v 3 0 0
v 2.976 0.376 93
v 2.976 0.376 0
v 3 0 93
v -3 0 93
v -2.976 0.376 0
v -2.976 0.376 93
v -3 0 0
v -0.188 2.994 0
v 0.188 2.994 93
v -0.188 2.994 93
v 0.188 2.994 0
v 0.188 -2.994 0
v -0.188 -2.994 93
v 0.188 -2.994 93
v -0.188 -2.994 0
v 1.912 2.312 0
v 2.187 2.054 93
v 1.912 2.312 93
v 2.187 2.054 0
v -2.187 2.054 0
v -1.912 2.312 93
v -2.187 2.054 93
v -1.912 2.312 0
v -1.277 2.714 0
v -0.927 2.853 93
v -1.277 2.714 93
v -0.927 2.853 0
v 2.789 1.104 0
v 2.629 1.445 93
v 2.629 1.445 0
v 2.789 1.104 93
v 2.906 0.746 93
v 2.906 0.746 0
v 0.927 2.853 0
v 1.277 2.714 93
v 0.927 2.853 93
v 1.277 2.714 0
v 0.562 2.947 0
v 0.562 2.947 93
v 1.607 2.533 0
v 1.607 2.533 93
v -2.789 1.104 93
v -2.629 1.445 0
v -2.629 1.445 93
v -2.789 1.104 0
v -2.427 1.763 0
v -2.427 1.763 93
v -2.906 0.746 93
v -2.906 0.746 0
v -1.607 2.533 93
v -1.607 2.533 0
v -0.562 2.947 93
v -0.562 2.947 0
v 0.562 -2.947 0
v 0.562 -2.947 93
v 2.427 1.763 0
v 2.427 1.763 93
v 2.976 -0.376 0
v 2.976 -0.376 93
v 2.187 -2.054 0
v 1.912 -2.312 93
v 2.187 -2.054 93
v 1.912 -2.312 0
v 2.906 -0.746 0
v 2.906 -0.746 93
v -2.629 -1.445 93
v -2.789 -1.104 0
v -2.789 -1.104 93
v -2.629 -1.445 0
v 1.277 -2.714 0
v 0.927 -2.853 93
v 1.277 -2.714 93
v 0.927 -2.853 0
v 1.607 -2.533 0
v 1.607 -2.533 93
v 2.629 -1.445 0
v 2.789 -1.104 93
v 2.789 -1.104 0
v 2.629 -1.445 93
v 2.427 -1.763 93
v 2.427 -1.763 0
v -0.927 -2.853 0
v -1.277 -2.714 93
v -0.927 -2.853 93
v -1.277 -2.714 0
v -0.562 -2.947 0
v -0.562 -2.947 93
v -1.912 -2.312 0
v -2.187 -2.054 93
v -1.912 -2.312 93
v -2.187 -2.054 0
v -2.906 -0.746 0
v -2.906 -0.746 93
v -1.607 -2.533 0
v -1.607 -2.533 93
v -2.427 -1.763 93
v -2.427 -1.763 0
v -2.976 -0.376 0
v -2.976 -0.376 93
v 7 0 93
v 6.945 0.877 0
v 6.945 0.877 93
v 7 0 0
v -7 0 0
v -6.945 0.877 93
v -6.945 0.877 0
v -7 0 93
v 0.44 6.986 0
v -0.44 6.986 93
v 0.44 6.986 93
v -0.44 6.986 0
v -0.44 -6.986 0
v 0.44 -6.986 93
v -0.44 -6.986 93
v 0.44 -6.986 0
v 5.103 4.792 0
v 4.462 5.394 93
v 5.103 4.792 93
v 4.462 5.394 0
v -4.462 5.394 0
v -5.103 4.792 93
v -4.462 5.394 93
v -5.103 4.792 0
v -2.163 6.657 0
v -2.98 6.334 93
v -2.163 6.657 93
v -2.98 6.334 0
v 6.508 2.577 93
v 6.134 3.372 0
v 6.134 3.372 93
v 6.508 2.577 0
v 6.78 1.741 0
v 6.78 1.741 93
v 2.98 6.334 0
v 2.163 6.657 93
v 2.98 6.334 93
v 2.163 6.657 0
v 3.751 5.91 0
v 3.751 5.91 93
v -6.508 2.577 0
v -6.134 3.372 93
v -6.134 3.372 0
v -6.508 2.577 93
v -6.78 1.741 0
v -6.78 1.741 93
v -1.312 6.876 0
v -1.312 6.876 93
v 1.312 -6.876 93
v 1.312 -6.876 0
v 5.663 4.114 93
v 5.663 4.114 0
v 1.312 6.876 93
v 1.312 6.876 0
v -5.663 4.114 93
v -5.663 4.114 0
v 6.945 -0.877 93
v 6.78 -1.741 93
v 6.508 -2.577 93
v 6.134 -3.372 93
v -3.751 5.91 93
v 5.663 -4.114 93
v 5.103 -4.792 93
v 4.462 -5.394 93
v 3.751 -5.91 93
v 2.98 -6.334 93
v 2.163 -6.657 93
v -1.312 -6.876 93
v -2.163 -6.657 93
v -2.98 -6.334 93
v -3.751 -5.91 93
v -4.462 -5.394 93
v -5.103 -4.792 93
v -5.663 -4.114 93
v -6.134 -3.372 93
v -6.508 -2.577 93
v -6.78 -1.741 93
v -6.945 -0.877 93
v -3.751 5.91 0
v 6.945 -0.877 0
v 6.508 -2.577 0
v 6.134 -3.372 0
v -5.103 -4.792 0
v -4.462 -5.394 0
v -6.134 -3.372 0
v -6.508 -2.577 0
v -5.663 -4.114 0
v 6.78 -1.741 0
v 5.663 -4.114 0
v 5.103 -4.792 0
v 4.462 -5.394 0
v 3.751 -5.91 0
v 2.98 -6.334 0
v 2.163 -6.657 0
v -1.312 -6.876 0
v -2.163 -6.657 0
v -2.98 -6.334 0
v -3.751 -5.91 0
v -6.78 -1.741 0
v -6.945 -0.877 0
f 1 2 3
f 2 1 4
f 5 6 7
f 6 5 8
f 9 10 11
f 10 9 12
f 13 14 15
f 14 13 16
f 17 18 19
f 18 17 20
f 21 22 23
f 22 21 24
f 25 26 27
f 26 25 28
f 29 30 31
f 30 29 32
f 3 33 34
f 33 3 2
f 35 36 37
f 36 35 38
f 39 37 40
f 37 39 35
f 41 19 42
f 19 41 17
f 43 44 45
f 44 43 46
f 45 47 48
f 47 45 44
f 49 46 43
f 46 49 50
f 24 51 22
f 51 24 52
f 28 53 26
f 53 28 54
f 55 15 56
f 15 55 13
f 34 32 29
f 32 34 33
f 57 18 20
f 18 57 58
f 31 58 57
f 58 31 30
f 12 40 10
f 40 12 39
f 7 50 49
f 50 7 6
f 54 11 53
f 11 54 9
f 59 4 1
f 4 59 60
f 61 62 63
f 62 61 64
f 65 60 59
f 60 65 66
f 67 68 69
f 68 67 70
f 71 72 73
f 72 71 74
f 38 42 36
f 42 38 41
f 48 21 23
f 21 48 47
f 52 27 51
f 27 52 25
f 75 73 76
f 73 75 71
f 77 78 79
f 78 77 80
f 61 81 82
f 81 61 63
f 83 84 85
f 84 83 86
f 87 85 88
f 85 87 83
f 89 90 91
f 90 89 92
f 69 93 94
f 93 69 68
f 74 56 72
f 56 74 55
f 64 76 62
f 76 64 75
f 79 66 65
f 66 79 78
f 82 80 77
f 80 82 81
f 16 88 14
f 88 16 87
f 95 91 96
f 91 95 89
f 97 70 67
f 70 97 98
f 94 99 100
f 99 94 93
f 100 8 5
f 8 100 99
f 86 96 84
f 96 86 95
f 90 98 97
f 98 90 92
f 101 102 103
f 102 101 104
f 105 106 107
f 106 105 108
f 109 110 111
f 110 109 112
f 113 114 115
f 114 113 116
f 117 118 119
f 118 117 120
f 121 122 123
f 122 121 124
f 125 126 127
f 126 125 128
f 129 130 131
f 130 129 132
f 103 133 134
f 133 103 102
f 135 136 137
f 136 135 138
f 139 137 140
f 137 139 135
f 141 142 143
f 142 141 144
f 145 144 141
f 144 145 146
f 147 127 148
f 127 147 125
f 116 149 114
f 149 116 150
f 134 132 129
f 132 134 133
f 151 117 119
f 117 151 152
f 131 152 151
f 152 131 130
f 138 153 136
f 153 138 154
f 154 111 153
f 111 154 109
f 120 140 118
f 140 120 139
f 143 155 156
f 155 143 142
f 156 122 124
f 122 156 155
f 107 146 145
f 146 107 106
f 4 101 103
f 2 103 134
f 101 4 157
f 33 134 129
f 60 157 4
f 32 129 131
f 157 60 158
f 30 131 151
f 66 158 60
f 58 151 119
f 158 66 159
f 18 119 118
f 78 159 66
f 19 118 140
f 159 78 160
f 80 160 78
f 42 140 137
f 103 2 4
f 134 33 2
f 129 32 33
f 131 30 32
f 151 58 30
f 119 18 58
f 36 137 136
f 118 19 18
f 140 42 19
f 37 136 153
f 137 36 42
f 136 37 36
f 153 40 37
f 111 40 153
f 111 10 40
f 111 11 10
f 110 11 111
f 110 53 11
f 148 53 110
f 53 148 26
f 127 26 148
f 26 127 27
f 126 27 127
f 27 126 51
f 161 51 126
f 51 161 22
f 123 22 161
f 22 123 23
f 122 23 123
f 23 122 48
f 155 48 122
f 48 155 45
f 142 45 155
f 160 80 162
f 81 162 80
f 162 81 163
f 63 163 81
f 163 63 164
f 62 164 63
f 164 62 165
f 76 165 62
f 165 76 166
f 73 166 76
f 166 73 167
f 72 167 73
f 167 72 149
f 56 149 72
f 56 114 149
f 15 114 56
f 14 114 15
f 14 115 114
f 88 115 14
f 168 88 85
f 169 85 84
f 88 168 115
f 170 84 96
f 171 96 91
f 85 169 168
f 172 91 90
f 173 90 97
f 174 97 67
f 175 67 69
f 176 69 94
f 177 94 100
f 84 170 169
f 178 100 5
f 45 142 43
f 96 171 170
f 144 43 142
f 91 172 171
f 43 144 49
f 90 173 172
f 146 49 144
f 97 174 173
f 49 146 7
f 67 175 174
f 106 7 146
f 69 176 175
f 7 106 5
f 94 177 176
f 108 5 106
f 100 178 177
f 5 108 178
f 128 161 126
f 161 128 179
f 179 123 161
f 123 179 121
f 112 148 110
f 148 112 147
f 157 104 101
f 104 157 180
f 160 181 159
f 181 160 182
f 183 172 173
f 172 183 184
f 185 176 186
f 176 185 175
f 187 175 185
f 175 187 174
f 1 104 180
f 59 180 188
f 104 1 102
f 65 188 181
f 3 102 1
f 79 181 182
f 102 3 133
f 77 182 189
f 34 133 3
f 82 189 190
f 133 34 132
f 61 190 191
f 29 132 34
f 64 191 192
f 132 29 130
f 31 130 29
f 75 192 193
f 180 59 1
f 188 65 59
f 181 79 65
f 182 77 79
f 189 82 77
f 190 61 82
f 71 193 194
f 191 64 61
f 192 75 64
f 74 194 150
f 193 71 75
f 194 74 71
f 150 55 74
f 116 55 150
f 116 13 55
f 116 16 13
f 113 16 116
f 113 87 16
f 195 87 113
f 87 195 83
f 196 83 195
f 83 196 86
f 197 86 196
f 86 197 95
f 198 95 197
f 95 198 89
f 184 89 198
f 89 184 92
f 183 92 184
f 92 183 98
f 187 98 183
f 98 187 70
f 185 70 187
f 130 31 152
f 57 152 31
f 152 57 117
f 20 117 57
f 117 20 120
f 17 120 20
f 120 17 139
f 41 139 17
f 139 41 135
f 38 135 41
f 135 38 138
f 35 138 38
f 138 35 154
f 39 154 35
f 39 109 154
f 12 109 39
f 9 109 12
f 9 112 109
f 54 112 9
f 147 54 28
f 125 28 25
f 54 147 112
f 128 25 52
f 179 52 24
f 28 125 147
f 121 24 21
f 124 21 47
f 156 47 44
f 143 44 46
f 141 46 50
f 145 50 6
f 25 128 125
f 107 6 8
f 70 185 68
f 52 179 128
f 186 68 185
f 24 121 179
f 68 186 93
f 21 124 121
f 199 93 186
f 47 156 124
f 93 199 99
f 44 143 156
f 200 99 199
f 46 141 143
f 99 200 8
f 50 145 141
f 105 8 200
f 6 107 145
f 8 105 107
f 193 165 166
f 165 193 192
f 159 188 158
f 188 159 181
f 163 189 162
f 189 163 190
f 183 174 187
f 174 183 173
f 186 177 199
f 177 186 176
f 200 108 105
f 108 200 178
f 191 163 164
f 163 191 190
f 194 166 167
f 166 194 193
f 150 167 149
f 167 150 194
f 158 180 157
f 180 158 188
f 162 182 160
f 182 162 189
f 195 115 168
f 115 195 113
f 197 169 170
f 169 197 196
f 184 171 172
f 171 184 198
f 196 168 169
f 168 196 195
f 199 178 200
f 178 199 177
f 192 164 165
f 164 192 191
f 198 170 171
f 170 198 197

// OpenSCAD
$fn = 50;


difference() {
	union() {
		*color(alpha = 1.0000000000, c = "gray") {
			translate(v = [0, 7, 0]) {
				linear_extrude(height = 1) {
					text(font = "Arial:style=Bold", halign = "center", size = 4.5000000000, text = "COMMENT plate main", valign = "center");
				}
			}
		}
		cylinder(h = 93, r = 7.0000000000);
	}
	union() {
		*color(alpha = 1.0000000000, c = "gray") {
			translate(v = [0, 7, 0]) {
				linear_extrude(height = 1) {
					text(font = "Arial:style=Bold", halign = "center", size = 4.5000000000, text = "COMMENT holes main", valign = "center");
				}
			}
		}
		translate(v = [0, 0, -100]) {
			cylinder(h = 200, r = 3.0000000000);
		}
		translate(v = [0, 0, -100]) {
			cylinder(h = 200, r = 1.5000000000);
		}
	}
}
